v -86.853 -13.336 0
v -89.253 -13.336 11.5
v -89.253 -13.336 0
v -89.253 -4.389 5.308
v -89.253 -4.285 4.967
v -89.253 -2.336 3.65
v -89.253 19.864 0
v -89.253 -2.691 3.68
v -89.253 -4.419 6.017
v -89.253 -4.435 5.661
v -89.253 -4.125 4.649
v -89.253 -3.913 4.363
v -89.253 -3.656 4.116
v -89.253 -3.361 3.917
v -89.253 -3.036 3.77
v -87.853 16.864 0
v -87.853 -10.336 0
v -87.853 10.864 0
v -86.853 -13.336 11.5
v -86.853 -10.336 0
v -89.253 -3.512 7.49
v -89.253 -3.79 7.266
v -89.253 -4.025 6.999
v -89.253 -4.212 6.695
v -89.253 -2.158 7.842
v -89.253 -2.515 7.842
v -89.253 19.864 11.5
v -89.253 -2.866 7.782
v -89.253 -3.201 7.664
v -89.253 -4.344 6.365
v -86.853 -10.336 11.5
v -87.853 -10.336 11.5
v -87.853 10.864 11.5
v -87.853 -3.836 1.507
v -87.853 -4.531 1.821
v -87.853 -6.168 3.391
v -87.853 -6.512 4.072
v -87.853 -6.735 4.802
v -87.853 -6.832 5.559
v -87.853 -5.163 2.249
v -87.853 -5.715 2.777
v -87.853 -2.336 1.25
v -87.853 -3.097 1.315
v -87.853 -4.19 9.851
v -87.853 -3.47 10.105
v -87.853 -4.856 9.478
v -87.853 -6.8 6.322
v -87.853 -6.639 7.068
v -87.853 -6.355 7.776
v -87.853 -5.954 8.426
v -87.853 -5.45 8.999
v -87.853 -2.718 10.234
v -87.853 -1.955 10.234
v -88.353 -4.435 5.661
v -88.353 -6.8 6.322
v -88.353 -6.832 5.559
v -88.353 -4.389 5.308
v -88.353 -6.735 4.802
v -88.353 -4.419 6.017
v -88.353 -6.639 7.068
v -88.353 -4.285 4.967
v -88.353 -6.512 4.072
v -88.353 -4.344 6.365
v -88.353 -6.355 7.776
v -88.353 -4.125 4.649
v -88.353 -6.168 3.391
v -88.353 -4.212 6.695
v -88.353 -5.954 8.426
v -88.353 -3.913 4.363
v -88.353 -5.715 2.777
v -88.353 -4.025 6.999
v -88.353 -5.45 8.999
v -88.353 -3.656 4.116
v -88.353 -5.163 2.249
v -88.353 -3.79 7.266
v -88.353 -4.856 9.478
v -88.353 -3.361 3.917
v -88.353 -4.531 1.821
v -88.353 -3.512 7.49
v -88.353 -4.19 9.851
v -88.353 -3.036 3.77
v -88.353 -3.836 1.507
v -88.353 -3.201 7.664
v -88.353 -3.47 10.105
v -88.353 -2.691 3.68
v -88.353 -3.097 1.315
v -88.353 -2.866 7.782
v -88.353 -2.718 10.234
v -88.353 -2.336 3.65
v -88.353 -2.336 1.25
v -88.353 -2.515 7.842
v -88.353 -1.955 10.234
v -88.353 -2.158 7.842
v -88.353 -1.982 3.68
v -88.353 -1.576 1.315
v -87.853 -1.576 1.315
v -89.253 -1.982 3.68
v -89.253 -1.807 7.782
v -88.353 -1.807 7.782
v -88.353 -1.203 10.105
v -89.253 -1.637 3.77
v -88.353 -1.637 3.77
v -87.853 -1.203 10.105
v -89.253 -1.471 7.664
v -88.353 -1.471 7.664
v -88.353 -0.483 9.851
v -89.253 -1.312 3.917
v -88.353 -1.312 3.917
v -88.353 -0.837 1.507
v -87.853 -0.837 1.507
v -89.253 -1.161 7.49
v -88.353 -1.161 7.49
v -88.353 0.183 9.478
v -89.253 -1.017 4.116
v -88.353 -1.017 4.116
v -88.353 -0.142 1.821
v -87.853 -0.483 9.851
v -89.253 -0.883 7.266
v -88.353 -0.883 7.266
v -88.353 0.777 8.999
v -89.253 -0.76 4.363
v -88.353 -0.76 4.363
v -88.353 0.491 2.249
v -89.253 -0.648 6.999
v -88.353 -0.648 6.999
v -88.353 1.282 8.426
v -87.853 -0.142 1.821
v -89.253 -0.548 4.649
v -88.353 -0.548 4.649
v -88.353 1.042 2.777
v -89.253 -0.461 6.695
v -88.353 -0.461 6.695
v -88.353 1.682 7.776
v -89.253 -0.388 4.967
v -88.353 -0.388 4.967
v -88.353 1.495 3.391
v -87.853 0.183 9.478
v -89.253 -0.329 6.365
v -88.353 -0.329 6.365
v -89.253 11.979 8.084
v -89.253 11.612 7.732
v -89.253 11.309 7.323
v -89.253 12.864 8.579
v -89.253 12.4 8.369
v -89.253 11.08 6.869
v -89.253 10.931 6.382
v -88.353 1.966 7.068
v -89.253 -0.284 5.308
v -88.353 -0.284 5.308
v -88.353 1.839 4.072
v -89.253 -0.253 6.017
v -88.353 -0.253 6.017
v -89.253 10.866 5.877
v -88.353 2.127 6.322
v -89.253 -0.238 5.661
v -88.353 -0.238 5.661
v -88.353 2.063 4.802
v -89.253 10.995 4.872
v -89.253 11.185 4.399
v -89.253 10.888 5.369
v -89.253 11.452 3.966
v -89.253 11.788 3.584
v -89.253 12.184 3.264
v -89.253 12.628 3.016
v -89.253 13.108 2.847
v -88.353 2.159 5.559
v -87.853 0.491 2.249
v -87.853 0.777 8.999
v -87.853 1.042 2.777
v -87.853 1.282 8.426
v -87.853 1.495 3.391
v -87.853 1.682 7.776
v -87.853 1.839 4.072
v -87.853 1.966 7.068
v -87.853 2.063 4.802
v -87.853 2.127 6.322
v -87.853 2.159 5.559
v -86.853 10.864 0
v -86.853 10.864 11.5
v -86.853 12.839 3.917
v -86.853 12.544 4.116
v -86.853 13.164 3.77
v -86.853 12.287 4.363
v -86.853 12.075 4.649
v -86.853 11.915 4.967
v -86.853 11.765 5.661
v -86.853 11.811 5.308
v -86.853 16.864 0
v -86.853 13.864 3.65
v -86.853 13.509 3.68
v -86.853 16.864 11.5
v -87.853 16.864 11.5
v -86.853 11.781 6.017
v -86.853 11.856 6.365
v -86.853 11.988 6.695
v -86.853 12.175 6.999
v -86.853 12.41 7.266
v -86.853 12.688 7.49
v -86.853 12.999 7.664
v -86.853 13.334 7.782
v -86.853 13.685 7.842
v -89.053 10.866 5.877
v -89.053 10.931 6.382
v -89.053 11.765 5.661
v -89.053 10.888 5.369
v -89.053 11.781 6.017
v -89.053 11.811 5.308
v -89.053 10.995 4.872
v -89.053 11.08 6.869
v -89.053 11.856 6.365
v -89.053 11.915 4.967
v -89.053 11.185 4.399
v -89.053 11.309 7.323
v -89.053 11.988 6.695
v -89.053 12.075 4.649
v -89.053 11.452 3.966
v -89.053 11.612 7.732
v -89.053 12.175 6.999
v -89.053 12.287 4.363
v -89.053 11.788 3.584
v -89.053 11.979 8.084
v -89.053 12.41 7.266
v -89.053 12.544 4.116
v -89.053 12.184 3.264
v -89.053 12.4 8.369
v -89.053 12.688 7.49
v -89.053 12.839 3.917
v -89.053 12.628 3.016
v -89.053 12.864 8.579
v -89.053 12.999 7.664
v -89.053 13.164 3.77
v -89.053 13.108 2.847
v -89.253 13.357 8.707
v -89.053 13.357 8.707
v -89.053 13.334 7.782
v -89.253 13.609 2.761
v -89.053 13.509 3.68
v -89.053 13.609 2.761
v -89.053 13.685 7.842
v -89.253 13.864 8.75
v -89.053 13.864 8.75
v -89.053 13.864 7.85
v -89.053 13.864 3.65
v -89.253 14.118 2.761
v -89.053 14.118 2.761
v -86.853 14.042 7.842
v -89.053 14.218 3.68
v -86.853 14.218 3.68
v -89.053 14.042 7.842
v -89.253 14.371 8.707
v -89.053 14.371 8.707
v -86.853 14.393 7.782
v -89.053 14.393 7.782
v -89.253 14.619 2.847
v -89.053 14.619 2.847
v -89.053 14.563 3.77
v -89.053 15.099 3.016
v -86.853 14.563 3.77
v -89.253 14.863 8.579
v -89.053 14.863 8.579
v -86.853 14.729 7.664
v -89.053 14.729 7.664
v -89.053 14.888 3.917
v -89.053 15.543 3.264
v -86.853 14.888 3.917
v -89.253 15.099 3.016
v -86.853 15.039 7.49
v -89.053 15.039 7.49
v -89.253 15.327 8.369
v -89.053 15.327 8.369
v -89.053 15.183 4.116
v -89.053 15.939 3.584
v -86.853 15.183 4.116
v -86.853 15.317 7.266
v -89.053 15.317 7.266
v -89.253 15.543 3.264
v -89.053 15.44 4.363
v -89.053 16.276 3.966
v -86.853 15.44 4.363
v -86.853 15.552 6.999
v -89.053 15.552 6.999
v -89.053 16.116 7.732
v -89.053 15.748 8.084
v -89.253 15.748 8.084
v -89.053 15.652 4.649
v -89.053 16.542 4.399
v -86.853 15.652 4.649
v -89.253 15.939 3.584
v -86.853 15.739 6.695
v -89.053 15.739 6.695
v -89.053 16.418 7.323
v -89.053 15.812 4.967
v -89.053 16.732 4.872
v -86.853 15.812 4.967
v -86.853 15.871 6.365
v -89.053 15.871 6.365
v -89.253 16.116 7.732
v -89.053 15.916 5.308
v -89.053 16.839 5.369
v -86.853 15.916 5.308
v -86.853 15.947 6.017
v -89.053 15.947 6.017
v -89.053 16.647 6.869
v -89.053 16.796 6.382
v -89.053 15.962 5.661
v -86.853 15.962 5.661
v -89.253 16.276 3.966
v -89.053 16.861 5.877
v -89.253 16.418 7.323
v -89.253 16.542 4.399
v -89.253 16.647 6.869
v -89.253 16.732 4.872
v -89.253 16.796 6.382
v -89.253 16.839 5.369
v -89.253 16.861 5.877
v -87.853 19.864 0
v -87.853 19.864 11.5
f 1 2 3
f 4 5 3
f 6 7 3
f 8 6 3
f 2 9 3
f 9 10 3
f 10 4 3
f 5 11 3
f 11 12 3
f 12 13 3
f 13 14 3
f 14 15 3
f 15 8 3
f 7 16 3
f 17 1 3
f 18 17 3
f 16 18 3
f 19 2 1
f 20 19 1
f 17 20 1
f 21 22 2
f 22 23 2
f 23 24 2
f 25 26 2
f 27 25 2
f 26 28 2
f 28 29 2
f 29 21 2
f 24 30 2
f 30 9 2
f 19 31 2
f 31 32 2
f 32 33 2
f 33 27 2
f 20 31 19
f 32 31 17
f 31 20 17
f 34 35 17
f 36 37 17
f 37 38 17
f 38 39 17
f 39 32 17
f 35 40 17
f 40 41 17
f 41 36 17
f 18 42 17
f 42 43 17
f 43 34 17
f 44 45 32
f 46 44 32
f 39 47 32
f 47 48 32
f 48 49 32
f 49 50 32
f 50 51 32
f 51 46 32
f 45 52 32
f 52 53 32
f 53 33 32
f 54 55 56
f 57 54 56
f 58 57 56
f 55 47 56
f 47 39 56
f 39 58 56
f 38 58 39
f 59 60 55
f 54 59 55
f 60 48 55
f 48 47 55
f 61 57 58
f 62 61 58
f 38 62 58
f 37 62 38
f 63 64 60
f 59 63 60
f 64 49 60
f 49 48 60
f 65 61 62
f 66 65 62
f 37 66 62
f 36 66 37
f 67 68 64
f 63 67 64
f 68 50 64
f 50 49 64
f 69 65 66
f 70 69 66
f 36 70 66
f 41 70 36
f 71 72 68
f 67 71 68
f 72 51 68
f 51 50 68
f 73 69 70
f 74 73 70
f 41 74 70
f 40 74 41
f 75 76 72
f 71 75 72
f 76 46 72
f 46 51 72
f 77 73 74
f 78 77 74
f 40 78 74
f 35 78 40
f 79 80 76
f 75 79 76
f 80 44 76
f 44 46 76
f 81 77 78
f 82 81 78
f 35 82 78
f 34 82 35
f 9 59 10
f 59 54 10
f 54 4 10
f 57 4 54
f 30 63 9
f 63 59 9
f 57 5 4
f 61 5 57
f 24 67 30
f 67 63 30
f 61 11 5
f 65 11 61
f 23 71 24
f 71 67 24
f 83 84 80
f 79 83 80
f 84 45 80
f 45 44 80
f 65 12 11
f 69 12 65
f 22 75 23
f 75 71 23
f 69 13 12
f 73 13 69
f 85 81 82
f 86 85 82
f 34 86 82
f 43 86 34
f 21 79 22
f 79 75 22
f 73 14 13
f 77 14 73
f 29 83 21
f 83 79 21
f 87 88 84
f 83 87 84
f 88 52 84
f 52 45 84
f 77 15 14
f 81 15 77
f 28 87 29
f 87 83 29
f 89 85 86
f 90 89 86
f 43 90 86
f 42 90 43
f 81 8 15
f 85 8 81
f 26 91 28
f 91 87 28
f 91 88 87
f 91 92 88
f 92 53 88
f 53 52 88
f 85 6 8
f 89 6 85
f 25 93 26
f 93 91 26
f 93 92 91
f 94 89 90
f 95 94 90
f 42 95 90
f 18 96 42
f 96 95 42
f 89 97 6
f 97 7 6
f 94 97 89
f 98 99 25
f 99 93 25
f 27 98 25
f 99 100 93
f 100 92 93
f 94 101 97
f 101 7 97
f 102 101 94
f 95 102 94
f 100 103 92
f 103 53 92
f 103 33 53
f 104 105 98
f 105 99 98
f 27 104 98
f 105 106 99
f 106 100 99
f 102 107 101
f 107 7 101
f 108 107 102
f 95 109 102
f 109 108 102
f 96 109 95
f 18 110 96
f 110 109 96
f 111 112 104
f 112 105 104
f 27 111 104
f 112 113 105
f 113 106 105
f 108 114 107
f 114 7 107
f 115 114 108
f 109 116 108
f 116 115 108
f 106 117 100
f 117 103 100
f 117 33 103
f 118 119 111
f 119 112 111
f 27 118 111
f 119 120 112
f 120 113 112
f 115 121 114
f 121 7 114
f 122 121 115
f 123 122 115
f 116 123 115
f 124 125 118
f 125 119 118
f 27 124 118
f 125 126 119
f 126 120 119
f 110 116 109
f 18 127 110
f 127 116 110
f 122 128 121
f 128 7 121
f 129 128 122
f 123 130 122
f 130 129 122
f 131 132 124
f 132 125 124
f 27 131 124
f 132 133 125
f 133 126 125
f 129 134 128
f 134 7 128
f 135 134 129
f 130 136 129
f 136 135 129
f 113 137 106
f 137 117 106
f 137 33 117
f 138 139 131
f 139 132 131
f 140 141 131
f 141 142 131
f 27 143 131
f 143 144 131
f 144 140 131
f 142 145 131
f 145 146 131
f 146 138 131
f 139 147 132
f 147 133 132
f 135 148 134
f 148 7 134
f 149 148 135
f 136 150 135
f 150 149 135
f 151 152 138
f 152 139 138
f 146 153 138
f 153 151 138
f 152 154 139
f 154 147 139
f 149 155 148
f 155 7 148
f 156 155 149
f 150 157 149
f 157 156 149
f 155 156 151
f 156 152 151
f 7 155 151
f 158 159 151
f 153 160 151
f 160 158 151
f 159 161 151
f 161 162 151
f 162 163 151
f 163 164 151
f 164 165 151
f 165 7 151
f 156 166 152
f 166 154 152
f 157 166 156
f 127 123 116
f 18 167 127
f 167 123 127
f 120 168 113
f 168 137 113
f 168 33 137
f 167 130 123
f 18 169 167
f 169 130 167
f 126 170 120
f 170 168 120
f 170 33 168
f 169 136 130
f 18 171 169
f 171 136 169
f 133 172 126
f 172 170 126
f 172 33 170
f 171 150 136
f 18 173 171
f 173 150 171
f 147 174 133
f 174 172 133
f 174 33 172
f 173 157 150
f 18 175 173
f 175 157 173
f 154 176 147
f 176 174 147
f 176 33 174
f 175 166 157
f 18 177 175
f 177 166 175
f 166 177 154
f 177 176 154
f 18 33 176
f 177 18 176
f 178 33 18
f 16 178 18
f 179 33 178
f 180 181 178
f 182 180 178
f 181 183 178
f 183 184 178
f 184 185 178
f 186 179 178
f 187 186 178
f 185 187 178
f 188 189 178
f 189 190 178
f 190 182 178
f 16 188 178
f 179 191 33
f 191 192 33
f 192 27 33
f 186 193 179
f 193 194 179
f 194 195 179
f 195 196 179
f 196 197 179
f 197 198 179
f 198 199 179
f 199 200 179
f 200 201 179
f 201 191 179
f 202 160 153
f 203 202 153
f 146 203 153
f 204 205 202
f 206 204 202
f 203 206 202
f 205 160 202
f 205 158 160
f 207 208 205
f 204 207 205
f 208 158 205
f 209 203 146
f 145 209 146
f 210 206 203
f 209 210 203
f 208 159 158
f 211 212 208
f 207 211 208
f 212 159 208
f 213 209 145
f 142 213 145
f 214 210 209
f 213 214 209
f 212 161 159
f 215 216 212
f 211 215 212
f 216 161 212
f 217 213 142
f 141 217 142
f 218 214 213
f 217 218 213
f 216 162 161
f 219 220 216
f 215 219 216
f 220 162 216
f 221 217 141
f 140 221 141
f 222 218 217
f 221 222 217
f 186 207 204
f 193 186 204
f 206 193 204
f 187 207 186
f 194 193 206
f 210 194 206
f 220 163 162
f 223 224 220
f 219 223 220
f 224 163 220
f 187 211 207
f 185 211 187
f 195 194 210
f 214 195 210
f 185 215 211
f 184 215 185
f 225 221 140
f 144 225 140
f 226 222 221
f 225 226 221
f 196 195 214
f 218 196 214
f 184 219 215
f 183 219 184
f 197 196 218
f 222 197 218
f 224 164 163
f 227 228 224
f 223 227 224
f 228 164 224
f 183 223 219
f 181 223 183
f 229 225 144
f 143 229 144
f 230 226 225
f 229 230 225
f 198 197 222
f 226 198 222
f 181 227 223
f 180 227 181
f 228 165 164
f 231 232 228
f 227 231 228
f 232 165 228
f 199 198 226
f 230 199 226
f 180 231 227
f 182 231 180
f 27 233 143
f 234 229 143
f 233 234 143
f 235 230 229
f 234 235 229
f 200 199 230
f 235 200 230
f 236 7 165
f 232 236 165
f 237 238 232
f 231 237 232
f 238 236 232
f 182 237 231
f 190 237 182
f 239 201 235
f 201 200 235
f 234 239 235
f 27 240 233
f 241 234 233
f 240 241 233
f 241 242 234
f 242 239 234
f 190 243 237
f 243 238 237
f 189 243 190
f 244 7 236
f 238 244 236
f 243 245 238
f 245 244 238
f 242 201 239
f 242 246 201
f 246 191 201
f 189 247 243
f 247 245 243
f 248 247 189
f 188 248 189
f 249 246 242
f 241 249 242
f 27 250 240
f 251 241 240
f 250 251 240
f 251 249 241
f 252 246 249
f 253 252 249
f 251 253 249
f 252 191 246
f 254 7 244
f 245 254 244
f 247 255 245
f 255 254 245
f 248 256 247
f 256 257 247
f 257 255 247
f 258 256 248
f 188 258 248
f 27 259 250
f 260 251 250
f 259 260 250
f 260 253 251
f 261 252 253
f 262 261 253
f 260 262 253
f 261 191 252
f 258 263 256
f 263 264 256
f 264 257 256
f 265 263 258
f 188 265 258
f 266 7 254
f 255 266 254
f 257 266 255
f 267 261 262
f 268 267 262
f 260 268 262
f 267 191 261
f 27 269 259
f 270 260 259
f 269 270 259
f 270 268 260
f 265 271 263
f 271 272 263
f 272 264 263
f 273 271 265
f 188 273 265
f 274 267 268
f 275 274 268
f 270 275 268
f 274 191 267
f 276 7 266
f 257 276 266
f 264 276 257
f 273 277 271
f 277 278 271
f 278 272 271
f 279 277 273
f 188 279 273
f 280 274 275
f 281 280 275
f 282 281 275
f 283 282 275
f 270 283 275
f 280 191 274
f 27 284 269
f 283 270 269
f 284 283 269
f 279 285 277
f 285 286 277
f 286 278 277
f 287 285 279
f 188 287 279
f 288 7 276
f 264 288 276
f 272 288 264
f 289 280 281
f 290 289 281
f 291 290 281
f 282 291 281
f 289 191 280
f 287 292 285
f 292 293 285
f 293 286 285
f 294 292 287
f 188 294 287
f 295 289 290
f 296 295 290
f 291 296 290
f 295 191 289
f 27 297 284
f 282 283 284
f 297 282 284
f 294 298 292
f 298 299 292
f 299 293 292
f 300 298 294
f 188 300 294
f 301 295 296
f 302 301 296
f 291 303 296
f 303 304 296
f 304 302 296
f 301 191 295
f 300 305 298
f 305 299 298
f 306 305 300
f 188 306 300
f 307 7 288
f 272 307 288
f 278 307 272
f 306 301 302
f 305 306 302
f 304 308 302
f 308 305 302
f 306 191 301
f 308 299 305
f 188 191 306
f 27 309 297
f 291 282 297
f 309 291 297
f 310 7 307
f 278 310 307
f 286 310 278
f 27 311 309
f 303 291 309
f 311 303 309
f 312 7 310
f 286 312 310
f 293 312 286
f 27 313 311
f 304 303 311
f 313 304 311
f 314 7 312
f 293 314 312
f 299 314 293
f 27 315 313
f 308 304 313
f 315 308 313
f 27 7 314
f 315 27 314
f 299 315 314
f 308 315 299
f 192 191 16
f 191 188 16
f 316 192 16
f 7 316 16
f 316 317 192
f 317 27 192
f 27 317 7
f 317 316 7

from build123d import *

# Parameters (mm, degrees)
SALIENTE_EXTRUIR1_DEPTH = 11.5
CORTAR_EXTRUIR1_START   = -2.4
CROQUIS2_R              = 2.1
CORTAR_EXTRUIR1_DEPTH   = 2.4
CROQUIS3_R              = 4.5
CORTAR_EXTRUIR2_DEPTH   = 0.5
CROQUIS4_R              = 3
CORTAR_EXTRUIR3_DEPTH   = 0.2


with BuildPart() as part:
    # Croquis1 → Saliente-Extruir1 (new body)
    with BuildSketch(Plane.XY):
        Polygon((-89.253382482, -13.336480186), (-89.253382482, 19.863519814), (-87.853382482, 19.863519814), (-87.853382482, 16.863519814), (-86.853382482, 16.863519814), (-86.853382482, 10.863519814), (-87.853382482, 10.863519814), (-87.853382482, -10.336480186), (-86.853382482, -10.336480186), (-86.853382482, -13.336480186), align=None)
    extrude(amount=SALIENTE_EXTRUIR1_DEPTH)

    # Croquis2 → Cortar-Extruir1 (cut)
    with BuildSketch(Plane(origin=(-86.853382482, 0, 0), x_dir=(0, 0, -1), z_dir=(1, 0, 0)).offset(CORTAR_EXTRUIR1_START)):
        with Locations((-5.75, 13.863519814)):
            Circle(CROQUIS2_R)
        with Locations((-5.75, -2.336480186)):
            Circle(CROQUIS2_R)
    extrude(amount=CORTAR_EXTRUIR1_DEPTH, mode=Mode.SUBTRACT)

    # Croquis3 → Cortar-Extruir2 (cut)
    with BuildSketch(Plane(origin=(-87.853382482, 0, 0), x_dir=(0, 0, -1), z_dir=(1, 0, 0))):
        with Locations((-5.75, -2.336480186)):
            Circle(CROQUIS3_R)
    extrude(amount=-CORTAR_EXTRUIR2_DEPTH, mode=Mode.SUBTRACT)

    # Croquis4 → Cortar-Extruir3 (cut)
    with BuildSketch(Plane.ZY.offset(89.253382482)):
        with Locations((5.75, 13.863519814)):
            Circle(CROQUIS4_R)
    extrude(amount=-CORTAR_EXTRUIR3_DEPTH, mode=Mode.SUBTRACT)


solid = part.part
